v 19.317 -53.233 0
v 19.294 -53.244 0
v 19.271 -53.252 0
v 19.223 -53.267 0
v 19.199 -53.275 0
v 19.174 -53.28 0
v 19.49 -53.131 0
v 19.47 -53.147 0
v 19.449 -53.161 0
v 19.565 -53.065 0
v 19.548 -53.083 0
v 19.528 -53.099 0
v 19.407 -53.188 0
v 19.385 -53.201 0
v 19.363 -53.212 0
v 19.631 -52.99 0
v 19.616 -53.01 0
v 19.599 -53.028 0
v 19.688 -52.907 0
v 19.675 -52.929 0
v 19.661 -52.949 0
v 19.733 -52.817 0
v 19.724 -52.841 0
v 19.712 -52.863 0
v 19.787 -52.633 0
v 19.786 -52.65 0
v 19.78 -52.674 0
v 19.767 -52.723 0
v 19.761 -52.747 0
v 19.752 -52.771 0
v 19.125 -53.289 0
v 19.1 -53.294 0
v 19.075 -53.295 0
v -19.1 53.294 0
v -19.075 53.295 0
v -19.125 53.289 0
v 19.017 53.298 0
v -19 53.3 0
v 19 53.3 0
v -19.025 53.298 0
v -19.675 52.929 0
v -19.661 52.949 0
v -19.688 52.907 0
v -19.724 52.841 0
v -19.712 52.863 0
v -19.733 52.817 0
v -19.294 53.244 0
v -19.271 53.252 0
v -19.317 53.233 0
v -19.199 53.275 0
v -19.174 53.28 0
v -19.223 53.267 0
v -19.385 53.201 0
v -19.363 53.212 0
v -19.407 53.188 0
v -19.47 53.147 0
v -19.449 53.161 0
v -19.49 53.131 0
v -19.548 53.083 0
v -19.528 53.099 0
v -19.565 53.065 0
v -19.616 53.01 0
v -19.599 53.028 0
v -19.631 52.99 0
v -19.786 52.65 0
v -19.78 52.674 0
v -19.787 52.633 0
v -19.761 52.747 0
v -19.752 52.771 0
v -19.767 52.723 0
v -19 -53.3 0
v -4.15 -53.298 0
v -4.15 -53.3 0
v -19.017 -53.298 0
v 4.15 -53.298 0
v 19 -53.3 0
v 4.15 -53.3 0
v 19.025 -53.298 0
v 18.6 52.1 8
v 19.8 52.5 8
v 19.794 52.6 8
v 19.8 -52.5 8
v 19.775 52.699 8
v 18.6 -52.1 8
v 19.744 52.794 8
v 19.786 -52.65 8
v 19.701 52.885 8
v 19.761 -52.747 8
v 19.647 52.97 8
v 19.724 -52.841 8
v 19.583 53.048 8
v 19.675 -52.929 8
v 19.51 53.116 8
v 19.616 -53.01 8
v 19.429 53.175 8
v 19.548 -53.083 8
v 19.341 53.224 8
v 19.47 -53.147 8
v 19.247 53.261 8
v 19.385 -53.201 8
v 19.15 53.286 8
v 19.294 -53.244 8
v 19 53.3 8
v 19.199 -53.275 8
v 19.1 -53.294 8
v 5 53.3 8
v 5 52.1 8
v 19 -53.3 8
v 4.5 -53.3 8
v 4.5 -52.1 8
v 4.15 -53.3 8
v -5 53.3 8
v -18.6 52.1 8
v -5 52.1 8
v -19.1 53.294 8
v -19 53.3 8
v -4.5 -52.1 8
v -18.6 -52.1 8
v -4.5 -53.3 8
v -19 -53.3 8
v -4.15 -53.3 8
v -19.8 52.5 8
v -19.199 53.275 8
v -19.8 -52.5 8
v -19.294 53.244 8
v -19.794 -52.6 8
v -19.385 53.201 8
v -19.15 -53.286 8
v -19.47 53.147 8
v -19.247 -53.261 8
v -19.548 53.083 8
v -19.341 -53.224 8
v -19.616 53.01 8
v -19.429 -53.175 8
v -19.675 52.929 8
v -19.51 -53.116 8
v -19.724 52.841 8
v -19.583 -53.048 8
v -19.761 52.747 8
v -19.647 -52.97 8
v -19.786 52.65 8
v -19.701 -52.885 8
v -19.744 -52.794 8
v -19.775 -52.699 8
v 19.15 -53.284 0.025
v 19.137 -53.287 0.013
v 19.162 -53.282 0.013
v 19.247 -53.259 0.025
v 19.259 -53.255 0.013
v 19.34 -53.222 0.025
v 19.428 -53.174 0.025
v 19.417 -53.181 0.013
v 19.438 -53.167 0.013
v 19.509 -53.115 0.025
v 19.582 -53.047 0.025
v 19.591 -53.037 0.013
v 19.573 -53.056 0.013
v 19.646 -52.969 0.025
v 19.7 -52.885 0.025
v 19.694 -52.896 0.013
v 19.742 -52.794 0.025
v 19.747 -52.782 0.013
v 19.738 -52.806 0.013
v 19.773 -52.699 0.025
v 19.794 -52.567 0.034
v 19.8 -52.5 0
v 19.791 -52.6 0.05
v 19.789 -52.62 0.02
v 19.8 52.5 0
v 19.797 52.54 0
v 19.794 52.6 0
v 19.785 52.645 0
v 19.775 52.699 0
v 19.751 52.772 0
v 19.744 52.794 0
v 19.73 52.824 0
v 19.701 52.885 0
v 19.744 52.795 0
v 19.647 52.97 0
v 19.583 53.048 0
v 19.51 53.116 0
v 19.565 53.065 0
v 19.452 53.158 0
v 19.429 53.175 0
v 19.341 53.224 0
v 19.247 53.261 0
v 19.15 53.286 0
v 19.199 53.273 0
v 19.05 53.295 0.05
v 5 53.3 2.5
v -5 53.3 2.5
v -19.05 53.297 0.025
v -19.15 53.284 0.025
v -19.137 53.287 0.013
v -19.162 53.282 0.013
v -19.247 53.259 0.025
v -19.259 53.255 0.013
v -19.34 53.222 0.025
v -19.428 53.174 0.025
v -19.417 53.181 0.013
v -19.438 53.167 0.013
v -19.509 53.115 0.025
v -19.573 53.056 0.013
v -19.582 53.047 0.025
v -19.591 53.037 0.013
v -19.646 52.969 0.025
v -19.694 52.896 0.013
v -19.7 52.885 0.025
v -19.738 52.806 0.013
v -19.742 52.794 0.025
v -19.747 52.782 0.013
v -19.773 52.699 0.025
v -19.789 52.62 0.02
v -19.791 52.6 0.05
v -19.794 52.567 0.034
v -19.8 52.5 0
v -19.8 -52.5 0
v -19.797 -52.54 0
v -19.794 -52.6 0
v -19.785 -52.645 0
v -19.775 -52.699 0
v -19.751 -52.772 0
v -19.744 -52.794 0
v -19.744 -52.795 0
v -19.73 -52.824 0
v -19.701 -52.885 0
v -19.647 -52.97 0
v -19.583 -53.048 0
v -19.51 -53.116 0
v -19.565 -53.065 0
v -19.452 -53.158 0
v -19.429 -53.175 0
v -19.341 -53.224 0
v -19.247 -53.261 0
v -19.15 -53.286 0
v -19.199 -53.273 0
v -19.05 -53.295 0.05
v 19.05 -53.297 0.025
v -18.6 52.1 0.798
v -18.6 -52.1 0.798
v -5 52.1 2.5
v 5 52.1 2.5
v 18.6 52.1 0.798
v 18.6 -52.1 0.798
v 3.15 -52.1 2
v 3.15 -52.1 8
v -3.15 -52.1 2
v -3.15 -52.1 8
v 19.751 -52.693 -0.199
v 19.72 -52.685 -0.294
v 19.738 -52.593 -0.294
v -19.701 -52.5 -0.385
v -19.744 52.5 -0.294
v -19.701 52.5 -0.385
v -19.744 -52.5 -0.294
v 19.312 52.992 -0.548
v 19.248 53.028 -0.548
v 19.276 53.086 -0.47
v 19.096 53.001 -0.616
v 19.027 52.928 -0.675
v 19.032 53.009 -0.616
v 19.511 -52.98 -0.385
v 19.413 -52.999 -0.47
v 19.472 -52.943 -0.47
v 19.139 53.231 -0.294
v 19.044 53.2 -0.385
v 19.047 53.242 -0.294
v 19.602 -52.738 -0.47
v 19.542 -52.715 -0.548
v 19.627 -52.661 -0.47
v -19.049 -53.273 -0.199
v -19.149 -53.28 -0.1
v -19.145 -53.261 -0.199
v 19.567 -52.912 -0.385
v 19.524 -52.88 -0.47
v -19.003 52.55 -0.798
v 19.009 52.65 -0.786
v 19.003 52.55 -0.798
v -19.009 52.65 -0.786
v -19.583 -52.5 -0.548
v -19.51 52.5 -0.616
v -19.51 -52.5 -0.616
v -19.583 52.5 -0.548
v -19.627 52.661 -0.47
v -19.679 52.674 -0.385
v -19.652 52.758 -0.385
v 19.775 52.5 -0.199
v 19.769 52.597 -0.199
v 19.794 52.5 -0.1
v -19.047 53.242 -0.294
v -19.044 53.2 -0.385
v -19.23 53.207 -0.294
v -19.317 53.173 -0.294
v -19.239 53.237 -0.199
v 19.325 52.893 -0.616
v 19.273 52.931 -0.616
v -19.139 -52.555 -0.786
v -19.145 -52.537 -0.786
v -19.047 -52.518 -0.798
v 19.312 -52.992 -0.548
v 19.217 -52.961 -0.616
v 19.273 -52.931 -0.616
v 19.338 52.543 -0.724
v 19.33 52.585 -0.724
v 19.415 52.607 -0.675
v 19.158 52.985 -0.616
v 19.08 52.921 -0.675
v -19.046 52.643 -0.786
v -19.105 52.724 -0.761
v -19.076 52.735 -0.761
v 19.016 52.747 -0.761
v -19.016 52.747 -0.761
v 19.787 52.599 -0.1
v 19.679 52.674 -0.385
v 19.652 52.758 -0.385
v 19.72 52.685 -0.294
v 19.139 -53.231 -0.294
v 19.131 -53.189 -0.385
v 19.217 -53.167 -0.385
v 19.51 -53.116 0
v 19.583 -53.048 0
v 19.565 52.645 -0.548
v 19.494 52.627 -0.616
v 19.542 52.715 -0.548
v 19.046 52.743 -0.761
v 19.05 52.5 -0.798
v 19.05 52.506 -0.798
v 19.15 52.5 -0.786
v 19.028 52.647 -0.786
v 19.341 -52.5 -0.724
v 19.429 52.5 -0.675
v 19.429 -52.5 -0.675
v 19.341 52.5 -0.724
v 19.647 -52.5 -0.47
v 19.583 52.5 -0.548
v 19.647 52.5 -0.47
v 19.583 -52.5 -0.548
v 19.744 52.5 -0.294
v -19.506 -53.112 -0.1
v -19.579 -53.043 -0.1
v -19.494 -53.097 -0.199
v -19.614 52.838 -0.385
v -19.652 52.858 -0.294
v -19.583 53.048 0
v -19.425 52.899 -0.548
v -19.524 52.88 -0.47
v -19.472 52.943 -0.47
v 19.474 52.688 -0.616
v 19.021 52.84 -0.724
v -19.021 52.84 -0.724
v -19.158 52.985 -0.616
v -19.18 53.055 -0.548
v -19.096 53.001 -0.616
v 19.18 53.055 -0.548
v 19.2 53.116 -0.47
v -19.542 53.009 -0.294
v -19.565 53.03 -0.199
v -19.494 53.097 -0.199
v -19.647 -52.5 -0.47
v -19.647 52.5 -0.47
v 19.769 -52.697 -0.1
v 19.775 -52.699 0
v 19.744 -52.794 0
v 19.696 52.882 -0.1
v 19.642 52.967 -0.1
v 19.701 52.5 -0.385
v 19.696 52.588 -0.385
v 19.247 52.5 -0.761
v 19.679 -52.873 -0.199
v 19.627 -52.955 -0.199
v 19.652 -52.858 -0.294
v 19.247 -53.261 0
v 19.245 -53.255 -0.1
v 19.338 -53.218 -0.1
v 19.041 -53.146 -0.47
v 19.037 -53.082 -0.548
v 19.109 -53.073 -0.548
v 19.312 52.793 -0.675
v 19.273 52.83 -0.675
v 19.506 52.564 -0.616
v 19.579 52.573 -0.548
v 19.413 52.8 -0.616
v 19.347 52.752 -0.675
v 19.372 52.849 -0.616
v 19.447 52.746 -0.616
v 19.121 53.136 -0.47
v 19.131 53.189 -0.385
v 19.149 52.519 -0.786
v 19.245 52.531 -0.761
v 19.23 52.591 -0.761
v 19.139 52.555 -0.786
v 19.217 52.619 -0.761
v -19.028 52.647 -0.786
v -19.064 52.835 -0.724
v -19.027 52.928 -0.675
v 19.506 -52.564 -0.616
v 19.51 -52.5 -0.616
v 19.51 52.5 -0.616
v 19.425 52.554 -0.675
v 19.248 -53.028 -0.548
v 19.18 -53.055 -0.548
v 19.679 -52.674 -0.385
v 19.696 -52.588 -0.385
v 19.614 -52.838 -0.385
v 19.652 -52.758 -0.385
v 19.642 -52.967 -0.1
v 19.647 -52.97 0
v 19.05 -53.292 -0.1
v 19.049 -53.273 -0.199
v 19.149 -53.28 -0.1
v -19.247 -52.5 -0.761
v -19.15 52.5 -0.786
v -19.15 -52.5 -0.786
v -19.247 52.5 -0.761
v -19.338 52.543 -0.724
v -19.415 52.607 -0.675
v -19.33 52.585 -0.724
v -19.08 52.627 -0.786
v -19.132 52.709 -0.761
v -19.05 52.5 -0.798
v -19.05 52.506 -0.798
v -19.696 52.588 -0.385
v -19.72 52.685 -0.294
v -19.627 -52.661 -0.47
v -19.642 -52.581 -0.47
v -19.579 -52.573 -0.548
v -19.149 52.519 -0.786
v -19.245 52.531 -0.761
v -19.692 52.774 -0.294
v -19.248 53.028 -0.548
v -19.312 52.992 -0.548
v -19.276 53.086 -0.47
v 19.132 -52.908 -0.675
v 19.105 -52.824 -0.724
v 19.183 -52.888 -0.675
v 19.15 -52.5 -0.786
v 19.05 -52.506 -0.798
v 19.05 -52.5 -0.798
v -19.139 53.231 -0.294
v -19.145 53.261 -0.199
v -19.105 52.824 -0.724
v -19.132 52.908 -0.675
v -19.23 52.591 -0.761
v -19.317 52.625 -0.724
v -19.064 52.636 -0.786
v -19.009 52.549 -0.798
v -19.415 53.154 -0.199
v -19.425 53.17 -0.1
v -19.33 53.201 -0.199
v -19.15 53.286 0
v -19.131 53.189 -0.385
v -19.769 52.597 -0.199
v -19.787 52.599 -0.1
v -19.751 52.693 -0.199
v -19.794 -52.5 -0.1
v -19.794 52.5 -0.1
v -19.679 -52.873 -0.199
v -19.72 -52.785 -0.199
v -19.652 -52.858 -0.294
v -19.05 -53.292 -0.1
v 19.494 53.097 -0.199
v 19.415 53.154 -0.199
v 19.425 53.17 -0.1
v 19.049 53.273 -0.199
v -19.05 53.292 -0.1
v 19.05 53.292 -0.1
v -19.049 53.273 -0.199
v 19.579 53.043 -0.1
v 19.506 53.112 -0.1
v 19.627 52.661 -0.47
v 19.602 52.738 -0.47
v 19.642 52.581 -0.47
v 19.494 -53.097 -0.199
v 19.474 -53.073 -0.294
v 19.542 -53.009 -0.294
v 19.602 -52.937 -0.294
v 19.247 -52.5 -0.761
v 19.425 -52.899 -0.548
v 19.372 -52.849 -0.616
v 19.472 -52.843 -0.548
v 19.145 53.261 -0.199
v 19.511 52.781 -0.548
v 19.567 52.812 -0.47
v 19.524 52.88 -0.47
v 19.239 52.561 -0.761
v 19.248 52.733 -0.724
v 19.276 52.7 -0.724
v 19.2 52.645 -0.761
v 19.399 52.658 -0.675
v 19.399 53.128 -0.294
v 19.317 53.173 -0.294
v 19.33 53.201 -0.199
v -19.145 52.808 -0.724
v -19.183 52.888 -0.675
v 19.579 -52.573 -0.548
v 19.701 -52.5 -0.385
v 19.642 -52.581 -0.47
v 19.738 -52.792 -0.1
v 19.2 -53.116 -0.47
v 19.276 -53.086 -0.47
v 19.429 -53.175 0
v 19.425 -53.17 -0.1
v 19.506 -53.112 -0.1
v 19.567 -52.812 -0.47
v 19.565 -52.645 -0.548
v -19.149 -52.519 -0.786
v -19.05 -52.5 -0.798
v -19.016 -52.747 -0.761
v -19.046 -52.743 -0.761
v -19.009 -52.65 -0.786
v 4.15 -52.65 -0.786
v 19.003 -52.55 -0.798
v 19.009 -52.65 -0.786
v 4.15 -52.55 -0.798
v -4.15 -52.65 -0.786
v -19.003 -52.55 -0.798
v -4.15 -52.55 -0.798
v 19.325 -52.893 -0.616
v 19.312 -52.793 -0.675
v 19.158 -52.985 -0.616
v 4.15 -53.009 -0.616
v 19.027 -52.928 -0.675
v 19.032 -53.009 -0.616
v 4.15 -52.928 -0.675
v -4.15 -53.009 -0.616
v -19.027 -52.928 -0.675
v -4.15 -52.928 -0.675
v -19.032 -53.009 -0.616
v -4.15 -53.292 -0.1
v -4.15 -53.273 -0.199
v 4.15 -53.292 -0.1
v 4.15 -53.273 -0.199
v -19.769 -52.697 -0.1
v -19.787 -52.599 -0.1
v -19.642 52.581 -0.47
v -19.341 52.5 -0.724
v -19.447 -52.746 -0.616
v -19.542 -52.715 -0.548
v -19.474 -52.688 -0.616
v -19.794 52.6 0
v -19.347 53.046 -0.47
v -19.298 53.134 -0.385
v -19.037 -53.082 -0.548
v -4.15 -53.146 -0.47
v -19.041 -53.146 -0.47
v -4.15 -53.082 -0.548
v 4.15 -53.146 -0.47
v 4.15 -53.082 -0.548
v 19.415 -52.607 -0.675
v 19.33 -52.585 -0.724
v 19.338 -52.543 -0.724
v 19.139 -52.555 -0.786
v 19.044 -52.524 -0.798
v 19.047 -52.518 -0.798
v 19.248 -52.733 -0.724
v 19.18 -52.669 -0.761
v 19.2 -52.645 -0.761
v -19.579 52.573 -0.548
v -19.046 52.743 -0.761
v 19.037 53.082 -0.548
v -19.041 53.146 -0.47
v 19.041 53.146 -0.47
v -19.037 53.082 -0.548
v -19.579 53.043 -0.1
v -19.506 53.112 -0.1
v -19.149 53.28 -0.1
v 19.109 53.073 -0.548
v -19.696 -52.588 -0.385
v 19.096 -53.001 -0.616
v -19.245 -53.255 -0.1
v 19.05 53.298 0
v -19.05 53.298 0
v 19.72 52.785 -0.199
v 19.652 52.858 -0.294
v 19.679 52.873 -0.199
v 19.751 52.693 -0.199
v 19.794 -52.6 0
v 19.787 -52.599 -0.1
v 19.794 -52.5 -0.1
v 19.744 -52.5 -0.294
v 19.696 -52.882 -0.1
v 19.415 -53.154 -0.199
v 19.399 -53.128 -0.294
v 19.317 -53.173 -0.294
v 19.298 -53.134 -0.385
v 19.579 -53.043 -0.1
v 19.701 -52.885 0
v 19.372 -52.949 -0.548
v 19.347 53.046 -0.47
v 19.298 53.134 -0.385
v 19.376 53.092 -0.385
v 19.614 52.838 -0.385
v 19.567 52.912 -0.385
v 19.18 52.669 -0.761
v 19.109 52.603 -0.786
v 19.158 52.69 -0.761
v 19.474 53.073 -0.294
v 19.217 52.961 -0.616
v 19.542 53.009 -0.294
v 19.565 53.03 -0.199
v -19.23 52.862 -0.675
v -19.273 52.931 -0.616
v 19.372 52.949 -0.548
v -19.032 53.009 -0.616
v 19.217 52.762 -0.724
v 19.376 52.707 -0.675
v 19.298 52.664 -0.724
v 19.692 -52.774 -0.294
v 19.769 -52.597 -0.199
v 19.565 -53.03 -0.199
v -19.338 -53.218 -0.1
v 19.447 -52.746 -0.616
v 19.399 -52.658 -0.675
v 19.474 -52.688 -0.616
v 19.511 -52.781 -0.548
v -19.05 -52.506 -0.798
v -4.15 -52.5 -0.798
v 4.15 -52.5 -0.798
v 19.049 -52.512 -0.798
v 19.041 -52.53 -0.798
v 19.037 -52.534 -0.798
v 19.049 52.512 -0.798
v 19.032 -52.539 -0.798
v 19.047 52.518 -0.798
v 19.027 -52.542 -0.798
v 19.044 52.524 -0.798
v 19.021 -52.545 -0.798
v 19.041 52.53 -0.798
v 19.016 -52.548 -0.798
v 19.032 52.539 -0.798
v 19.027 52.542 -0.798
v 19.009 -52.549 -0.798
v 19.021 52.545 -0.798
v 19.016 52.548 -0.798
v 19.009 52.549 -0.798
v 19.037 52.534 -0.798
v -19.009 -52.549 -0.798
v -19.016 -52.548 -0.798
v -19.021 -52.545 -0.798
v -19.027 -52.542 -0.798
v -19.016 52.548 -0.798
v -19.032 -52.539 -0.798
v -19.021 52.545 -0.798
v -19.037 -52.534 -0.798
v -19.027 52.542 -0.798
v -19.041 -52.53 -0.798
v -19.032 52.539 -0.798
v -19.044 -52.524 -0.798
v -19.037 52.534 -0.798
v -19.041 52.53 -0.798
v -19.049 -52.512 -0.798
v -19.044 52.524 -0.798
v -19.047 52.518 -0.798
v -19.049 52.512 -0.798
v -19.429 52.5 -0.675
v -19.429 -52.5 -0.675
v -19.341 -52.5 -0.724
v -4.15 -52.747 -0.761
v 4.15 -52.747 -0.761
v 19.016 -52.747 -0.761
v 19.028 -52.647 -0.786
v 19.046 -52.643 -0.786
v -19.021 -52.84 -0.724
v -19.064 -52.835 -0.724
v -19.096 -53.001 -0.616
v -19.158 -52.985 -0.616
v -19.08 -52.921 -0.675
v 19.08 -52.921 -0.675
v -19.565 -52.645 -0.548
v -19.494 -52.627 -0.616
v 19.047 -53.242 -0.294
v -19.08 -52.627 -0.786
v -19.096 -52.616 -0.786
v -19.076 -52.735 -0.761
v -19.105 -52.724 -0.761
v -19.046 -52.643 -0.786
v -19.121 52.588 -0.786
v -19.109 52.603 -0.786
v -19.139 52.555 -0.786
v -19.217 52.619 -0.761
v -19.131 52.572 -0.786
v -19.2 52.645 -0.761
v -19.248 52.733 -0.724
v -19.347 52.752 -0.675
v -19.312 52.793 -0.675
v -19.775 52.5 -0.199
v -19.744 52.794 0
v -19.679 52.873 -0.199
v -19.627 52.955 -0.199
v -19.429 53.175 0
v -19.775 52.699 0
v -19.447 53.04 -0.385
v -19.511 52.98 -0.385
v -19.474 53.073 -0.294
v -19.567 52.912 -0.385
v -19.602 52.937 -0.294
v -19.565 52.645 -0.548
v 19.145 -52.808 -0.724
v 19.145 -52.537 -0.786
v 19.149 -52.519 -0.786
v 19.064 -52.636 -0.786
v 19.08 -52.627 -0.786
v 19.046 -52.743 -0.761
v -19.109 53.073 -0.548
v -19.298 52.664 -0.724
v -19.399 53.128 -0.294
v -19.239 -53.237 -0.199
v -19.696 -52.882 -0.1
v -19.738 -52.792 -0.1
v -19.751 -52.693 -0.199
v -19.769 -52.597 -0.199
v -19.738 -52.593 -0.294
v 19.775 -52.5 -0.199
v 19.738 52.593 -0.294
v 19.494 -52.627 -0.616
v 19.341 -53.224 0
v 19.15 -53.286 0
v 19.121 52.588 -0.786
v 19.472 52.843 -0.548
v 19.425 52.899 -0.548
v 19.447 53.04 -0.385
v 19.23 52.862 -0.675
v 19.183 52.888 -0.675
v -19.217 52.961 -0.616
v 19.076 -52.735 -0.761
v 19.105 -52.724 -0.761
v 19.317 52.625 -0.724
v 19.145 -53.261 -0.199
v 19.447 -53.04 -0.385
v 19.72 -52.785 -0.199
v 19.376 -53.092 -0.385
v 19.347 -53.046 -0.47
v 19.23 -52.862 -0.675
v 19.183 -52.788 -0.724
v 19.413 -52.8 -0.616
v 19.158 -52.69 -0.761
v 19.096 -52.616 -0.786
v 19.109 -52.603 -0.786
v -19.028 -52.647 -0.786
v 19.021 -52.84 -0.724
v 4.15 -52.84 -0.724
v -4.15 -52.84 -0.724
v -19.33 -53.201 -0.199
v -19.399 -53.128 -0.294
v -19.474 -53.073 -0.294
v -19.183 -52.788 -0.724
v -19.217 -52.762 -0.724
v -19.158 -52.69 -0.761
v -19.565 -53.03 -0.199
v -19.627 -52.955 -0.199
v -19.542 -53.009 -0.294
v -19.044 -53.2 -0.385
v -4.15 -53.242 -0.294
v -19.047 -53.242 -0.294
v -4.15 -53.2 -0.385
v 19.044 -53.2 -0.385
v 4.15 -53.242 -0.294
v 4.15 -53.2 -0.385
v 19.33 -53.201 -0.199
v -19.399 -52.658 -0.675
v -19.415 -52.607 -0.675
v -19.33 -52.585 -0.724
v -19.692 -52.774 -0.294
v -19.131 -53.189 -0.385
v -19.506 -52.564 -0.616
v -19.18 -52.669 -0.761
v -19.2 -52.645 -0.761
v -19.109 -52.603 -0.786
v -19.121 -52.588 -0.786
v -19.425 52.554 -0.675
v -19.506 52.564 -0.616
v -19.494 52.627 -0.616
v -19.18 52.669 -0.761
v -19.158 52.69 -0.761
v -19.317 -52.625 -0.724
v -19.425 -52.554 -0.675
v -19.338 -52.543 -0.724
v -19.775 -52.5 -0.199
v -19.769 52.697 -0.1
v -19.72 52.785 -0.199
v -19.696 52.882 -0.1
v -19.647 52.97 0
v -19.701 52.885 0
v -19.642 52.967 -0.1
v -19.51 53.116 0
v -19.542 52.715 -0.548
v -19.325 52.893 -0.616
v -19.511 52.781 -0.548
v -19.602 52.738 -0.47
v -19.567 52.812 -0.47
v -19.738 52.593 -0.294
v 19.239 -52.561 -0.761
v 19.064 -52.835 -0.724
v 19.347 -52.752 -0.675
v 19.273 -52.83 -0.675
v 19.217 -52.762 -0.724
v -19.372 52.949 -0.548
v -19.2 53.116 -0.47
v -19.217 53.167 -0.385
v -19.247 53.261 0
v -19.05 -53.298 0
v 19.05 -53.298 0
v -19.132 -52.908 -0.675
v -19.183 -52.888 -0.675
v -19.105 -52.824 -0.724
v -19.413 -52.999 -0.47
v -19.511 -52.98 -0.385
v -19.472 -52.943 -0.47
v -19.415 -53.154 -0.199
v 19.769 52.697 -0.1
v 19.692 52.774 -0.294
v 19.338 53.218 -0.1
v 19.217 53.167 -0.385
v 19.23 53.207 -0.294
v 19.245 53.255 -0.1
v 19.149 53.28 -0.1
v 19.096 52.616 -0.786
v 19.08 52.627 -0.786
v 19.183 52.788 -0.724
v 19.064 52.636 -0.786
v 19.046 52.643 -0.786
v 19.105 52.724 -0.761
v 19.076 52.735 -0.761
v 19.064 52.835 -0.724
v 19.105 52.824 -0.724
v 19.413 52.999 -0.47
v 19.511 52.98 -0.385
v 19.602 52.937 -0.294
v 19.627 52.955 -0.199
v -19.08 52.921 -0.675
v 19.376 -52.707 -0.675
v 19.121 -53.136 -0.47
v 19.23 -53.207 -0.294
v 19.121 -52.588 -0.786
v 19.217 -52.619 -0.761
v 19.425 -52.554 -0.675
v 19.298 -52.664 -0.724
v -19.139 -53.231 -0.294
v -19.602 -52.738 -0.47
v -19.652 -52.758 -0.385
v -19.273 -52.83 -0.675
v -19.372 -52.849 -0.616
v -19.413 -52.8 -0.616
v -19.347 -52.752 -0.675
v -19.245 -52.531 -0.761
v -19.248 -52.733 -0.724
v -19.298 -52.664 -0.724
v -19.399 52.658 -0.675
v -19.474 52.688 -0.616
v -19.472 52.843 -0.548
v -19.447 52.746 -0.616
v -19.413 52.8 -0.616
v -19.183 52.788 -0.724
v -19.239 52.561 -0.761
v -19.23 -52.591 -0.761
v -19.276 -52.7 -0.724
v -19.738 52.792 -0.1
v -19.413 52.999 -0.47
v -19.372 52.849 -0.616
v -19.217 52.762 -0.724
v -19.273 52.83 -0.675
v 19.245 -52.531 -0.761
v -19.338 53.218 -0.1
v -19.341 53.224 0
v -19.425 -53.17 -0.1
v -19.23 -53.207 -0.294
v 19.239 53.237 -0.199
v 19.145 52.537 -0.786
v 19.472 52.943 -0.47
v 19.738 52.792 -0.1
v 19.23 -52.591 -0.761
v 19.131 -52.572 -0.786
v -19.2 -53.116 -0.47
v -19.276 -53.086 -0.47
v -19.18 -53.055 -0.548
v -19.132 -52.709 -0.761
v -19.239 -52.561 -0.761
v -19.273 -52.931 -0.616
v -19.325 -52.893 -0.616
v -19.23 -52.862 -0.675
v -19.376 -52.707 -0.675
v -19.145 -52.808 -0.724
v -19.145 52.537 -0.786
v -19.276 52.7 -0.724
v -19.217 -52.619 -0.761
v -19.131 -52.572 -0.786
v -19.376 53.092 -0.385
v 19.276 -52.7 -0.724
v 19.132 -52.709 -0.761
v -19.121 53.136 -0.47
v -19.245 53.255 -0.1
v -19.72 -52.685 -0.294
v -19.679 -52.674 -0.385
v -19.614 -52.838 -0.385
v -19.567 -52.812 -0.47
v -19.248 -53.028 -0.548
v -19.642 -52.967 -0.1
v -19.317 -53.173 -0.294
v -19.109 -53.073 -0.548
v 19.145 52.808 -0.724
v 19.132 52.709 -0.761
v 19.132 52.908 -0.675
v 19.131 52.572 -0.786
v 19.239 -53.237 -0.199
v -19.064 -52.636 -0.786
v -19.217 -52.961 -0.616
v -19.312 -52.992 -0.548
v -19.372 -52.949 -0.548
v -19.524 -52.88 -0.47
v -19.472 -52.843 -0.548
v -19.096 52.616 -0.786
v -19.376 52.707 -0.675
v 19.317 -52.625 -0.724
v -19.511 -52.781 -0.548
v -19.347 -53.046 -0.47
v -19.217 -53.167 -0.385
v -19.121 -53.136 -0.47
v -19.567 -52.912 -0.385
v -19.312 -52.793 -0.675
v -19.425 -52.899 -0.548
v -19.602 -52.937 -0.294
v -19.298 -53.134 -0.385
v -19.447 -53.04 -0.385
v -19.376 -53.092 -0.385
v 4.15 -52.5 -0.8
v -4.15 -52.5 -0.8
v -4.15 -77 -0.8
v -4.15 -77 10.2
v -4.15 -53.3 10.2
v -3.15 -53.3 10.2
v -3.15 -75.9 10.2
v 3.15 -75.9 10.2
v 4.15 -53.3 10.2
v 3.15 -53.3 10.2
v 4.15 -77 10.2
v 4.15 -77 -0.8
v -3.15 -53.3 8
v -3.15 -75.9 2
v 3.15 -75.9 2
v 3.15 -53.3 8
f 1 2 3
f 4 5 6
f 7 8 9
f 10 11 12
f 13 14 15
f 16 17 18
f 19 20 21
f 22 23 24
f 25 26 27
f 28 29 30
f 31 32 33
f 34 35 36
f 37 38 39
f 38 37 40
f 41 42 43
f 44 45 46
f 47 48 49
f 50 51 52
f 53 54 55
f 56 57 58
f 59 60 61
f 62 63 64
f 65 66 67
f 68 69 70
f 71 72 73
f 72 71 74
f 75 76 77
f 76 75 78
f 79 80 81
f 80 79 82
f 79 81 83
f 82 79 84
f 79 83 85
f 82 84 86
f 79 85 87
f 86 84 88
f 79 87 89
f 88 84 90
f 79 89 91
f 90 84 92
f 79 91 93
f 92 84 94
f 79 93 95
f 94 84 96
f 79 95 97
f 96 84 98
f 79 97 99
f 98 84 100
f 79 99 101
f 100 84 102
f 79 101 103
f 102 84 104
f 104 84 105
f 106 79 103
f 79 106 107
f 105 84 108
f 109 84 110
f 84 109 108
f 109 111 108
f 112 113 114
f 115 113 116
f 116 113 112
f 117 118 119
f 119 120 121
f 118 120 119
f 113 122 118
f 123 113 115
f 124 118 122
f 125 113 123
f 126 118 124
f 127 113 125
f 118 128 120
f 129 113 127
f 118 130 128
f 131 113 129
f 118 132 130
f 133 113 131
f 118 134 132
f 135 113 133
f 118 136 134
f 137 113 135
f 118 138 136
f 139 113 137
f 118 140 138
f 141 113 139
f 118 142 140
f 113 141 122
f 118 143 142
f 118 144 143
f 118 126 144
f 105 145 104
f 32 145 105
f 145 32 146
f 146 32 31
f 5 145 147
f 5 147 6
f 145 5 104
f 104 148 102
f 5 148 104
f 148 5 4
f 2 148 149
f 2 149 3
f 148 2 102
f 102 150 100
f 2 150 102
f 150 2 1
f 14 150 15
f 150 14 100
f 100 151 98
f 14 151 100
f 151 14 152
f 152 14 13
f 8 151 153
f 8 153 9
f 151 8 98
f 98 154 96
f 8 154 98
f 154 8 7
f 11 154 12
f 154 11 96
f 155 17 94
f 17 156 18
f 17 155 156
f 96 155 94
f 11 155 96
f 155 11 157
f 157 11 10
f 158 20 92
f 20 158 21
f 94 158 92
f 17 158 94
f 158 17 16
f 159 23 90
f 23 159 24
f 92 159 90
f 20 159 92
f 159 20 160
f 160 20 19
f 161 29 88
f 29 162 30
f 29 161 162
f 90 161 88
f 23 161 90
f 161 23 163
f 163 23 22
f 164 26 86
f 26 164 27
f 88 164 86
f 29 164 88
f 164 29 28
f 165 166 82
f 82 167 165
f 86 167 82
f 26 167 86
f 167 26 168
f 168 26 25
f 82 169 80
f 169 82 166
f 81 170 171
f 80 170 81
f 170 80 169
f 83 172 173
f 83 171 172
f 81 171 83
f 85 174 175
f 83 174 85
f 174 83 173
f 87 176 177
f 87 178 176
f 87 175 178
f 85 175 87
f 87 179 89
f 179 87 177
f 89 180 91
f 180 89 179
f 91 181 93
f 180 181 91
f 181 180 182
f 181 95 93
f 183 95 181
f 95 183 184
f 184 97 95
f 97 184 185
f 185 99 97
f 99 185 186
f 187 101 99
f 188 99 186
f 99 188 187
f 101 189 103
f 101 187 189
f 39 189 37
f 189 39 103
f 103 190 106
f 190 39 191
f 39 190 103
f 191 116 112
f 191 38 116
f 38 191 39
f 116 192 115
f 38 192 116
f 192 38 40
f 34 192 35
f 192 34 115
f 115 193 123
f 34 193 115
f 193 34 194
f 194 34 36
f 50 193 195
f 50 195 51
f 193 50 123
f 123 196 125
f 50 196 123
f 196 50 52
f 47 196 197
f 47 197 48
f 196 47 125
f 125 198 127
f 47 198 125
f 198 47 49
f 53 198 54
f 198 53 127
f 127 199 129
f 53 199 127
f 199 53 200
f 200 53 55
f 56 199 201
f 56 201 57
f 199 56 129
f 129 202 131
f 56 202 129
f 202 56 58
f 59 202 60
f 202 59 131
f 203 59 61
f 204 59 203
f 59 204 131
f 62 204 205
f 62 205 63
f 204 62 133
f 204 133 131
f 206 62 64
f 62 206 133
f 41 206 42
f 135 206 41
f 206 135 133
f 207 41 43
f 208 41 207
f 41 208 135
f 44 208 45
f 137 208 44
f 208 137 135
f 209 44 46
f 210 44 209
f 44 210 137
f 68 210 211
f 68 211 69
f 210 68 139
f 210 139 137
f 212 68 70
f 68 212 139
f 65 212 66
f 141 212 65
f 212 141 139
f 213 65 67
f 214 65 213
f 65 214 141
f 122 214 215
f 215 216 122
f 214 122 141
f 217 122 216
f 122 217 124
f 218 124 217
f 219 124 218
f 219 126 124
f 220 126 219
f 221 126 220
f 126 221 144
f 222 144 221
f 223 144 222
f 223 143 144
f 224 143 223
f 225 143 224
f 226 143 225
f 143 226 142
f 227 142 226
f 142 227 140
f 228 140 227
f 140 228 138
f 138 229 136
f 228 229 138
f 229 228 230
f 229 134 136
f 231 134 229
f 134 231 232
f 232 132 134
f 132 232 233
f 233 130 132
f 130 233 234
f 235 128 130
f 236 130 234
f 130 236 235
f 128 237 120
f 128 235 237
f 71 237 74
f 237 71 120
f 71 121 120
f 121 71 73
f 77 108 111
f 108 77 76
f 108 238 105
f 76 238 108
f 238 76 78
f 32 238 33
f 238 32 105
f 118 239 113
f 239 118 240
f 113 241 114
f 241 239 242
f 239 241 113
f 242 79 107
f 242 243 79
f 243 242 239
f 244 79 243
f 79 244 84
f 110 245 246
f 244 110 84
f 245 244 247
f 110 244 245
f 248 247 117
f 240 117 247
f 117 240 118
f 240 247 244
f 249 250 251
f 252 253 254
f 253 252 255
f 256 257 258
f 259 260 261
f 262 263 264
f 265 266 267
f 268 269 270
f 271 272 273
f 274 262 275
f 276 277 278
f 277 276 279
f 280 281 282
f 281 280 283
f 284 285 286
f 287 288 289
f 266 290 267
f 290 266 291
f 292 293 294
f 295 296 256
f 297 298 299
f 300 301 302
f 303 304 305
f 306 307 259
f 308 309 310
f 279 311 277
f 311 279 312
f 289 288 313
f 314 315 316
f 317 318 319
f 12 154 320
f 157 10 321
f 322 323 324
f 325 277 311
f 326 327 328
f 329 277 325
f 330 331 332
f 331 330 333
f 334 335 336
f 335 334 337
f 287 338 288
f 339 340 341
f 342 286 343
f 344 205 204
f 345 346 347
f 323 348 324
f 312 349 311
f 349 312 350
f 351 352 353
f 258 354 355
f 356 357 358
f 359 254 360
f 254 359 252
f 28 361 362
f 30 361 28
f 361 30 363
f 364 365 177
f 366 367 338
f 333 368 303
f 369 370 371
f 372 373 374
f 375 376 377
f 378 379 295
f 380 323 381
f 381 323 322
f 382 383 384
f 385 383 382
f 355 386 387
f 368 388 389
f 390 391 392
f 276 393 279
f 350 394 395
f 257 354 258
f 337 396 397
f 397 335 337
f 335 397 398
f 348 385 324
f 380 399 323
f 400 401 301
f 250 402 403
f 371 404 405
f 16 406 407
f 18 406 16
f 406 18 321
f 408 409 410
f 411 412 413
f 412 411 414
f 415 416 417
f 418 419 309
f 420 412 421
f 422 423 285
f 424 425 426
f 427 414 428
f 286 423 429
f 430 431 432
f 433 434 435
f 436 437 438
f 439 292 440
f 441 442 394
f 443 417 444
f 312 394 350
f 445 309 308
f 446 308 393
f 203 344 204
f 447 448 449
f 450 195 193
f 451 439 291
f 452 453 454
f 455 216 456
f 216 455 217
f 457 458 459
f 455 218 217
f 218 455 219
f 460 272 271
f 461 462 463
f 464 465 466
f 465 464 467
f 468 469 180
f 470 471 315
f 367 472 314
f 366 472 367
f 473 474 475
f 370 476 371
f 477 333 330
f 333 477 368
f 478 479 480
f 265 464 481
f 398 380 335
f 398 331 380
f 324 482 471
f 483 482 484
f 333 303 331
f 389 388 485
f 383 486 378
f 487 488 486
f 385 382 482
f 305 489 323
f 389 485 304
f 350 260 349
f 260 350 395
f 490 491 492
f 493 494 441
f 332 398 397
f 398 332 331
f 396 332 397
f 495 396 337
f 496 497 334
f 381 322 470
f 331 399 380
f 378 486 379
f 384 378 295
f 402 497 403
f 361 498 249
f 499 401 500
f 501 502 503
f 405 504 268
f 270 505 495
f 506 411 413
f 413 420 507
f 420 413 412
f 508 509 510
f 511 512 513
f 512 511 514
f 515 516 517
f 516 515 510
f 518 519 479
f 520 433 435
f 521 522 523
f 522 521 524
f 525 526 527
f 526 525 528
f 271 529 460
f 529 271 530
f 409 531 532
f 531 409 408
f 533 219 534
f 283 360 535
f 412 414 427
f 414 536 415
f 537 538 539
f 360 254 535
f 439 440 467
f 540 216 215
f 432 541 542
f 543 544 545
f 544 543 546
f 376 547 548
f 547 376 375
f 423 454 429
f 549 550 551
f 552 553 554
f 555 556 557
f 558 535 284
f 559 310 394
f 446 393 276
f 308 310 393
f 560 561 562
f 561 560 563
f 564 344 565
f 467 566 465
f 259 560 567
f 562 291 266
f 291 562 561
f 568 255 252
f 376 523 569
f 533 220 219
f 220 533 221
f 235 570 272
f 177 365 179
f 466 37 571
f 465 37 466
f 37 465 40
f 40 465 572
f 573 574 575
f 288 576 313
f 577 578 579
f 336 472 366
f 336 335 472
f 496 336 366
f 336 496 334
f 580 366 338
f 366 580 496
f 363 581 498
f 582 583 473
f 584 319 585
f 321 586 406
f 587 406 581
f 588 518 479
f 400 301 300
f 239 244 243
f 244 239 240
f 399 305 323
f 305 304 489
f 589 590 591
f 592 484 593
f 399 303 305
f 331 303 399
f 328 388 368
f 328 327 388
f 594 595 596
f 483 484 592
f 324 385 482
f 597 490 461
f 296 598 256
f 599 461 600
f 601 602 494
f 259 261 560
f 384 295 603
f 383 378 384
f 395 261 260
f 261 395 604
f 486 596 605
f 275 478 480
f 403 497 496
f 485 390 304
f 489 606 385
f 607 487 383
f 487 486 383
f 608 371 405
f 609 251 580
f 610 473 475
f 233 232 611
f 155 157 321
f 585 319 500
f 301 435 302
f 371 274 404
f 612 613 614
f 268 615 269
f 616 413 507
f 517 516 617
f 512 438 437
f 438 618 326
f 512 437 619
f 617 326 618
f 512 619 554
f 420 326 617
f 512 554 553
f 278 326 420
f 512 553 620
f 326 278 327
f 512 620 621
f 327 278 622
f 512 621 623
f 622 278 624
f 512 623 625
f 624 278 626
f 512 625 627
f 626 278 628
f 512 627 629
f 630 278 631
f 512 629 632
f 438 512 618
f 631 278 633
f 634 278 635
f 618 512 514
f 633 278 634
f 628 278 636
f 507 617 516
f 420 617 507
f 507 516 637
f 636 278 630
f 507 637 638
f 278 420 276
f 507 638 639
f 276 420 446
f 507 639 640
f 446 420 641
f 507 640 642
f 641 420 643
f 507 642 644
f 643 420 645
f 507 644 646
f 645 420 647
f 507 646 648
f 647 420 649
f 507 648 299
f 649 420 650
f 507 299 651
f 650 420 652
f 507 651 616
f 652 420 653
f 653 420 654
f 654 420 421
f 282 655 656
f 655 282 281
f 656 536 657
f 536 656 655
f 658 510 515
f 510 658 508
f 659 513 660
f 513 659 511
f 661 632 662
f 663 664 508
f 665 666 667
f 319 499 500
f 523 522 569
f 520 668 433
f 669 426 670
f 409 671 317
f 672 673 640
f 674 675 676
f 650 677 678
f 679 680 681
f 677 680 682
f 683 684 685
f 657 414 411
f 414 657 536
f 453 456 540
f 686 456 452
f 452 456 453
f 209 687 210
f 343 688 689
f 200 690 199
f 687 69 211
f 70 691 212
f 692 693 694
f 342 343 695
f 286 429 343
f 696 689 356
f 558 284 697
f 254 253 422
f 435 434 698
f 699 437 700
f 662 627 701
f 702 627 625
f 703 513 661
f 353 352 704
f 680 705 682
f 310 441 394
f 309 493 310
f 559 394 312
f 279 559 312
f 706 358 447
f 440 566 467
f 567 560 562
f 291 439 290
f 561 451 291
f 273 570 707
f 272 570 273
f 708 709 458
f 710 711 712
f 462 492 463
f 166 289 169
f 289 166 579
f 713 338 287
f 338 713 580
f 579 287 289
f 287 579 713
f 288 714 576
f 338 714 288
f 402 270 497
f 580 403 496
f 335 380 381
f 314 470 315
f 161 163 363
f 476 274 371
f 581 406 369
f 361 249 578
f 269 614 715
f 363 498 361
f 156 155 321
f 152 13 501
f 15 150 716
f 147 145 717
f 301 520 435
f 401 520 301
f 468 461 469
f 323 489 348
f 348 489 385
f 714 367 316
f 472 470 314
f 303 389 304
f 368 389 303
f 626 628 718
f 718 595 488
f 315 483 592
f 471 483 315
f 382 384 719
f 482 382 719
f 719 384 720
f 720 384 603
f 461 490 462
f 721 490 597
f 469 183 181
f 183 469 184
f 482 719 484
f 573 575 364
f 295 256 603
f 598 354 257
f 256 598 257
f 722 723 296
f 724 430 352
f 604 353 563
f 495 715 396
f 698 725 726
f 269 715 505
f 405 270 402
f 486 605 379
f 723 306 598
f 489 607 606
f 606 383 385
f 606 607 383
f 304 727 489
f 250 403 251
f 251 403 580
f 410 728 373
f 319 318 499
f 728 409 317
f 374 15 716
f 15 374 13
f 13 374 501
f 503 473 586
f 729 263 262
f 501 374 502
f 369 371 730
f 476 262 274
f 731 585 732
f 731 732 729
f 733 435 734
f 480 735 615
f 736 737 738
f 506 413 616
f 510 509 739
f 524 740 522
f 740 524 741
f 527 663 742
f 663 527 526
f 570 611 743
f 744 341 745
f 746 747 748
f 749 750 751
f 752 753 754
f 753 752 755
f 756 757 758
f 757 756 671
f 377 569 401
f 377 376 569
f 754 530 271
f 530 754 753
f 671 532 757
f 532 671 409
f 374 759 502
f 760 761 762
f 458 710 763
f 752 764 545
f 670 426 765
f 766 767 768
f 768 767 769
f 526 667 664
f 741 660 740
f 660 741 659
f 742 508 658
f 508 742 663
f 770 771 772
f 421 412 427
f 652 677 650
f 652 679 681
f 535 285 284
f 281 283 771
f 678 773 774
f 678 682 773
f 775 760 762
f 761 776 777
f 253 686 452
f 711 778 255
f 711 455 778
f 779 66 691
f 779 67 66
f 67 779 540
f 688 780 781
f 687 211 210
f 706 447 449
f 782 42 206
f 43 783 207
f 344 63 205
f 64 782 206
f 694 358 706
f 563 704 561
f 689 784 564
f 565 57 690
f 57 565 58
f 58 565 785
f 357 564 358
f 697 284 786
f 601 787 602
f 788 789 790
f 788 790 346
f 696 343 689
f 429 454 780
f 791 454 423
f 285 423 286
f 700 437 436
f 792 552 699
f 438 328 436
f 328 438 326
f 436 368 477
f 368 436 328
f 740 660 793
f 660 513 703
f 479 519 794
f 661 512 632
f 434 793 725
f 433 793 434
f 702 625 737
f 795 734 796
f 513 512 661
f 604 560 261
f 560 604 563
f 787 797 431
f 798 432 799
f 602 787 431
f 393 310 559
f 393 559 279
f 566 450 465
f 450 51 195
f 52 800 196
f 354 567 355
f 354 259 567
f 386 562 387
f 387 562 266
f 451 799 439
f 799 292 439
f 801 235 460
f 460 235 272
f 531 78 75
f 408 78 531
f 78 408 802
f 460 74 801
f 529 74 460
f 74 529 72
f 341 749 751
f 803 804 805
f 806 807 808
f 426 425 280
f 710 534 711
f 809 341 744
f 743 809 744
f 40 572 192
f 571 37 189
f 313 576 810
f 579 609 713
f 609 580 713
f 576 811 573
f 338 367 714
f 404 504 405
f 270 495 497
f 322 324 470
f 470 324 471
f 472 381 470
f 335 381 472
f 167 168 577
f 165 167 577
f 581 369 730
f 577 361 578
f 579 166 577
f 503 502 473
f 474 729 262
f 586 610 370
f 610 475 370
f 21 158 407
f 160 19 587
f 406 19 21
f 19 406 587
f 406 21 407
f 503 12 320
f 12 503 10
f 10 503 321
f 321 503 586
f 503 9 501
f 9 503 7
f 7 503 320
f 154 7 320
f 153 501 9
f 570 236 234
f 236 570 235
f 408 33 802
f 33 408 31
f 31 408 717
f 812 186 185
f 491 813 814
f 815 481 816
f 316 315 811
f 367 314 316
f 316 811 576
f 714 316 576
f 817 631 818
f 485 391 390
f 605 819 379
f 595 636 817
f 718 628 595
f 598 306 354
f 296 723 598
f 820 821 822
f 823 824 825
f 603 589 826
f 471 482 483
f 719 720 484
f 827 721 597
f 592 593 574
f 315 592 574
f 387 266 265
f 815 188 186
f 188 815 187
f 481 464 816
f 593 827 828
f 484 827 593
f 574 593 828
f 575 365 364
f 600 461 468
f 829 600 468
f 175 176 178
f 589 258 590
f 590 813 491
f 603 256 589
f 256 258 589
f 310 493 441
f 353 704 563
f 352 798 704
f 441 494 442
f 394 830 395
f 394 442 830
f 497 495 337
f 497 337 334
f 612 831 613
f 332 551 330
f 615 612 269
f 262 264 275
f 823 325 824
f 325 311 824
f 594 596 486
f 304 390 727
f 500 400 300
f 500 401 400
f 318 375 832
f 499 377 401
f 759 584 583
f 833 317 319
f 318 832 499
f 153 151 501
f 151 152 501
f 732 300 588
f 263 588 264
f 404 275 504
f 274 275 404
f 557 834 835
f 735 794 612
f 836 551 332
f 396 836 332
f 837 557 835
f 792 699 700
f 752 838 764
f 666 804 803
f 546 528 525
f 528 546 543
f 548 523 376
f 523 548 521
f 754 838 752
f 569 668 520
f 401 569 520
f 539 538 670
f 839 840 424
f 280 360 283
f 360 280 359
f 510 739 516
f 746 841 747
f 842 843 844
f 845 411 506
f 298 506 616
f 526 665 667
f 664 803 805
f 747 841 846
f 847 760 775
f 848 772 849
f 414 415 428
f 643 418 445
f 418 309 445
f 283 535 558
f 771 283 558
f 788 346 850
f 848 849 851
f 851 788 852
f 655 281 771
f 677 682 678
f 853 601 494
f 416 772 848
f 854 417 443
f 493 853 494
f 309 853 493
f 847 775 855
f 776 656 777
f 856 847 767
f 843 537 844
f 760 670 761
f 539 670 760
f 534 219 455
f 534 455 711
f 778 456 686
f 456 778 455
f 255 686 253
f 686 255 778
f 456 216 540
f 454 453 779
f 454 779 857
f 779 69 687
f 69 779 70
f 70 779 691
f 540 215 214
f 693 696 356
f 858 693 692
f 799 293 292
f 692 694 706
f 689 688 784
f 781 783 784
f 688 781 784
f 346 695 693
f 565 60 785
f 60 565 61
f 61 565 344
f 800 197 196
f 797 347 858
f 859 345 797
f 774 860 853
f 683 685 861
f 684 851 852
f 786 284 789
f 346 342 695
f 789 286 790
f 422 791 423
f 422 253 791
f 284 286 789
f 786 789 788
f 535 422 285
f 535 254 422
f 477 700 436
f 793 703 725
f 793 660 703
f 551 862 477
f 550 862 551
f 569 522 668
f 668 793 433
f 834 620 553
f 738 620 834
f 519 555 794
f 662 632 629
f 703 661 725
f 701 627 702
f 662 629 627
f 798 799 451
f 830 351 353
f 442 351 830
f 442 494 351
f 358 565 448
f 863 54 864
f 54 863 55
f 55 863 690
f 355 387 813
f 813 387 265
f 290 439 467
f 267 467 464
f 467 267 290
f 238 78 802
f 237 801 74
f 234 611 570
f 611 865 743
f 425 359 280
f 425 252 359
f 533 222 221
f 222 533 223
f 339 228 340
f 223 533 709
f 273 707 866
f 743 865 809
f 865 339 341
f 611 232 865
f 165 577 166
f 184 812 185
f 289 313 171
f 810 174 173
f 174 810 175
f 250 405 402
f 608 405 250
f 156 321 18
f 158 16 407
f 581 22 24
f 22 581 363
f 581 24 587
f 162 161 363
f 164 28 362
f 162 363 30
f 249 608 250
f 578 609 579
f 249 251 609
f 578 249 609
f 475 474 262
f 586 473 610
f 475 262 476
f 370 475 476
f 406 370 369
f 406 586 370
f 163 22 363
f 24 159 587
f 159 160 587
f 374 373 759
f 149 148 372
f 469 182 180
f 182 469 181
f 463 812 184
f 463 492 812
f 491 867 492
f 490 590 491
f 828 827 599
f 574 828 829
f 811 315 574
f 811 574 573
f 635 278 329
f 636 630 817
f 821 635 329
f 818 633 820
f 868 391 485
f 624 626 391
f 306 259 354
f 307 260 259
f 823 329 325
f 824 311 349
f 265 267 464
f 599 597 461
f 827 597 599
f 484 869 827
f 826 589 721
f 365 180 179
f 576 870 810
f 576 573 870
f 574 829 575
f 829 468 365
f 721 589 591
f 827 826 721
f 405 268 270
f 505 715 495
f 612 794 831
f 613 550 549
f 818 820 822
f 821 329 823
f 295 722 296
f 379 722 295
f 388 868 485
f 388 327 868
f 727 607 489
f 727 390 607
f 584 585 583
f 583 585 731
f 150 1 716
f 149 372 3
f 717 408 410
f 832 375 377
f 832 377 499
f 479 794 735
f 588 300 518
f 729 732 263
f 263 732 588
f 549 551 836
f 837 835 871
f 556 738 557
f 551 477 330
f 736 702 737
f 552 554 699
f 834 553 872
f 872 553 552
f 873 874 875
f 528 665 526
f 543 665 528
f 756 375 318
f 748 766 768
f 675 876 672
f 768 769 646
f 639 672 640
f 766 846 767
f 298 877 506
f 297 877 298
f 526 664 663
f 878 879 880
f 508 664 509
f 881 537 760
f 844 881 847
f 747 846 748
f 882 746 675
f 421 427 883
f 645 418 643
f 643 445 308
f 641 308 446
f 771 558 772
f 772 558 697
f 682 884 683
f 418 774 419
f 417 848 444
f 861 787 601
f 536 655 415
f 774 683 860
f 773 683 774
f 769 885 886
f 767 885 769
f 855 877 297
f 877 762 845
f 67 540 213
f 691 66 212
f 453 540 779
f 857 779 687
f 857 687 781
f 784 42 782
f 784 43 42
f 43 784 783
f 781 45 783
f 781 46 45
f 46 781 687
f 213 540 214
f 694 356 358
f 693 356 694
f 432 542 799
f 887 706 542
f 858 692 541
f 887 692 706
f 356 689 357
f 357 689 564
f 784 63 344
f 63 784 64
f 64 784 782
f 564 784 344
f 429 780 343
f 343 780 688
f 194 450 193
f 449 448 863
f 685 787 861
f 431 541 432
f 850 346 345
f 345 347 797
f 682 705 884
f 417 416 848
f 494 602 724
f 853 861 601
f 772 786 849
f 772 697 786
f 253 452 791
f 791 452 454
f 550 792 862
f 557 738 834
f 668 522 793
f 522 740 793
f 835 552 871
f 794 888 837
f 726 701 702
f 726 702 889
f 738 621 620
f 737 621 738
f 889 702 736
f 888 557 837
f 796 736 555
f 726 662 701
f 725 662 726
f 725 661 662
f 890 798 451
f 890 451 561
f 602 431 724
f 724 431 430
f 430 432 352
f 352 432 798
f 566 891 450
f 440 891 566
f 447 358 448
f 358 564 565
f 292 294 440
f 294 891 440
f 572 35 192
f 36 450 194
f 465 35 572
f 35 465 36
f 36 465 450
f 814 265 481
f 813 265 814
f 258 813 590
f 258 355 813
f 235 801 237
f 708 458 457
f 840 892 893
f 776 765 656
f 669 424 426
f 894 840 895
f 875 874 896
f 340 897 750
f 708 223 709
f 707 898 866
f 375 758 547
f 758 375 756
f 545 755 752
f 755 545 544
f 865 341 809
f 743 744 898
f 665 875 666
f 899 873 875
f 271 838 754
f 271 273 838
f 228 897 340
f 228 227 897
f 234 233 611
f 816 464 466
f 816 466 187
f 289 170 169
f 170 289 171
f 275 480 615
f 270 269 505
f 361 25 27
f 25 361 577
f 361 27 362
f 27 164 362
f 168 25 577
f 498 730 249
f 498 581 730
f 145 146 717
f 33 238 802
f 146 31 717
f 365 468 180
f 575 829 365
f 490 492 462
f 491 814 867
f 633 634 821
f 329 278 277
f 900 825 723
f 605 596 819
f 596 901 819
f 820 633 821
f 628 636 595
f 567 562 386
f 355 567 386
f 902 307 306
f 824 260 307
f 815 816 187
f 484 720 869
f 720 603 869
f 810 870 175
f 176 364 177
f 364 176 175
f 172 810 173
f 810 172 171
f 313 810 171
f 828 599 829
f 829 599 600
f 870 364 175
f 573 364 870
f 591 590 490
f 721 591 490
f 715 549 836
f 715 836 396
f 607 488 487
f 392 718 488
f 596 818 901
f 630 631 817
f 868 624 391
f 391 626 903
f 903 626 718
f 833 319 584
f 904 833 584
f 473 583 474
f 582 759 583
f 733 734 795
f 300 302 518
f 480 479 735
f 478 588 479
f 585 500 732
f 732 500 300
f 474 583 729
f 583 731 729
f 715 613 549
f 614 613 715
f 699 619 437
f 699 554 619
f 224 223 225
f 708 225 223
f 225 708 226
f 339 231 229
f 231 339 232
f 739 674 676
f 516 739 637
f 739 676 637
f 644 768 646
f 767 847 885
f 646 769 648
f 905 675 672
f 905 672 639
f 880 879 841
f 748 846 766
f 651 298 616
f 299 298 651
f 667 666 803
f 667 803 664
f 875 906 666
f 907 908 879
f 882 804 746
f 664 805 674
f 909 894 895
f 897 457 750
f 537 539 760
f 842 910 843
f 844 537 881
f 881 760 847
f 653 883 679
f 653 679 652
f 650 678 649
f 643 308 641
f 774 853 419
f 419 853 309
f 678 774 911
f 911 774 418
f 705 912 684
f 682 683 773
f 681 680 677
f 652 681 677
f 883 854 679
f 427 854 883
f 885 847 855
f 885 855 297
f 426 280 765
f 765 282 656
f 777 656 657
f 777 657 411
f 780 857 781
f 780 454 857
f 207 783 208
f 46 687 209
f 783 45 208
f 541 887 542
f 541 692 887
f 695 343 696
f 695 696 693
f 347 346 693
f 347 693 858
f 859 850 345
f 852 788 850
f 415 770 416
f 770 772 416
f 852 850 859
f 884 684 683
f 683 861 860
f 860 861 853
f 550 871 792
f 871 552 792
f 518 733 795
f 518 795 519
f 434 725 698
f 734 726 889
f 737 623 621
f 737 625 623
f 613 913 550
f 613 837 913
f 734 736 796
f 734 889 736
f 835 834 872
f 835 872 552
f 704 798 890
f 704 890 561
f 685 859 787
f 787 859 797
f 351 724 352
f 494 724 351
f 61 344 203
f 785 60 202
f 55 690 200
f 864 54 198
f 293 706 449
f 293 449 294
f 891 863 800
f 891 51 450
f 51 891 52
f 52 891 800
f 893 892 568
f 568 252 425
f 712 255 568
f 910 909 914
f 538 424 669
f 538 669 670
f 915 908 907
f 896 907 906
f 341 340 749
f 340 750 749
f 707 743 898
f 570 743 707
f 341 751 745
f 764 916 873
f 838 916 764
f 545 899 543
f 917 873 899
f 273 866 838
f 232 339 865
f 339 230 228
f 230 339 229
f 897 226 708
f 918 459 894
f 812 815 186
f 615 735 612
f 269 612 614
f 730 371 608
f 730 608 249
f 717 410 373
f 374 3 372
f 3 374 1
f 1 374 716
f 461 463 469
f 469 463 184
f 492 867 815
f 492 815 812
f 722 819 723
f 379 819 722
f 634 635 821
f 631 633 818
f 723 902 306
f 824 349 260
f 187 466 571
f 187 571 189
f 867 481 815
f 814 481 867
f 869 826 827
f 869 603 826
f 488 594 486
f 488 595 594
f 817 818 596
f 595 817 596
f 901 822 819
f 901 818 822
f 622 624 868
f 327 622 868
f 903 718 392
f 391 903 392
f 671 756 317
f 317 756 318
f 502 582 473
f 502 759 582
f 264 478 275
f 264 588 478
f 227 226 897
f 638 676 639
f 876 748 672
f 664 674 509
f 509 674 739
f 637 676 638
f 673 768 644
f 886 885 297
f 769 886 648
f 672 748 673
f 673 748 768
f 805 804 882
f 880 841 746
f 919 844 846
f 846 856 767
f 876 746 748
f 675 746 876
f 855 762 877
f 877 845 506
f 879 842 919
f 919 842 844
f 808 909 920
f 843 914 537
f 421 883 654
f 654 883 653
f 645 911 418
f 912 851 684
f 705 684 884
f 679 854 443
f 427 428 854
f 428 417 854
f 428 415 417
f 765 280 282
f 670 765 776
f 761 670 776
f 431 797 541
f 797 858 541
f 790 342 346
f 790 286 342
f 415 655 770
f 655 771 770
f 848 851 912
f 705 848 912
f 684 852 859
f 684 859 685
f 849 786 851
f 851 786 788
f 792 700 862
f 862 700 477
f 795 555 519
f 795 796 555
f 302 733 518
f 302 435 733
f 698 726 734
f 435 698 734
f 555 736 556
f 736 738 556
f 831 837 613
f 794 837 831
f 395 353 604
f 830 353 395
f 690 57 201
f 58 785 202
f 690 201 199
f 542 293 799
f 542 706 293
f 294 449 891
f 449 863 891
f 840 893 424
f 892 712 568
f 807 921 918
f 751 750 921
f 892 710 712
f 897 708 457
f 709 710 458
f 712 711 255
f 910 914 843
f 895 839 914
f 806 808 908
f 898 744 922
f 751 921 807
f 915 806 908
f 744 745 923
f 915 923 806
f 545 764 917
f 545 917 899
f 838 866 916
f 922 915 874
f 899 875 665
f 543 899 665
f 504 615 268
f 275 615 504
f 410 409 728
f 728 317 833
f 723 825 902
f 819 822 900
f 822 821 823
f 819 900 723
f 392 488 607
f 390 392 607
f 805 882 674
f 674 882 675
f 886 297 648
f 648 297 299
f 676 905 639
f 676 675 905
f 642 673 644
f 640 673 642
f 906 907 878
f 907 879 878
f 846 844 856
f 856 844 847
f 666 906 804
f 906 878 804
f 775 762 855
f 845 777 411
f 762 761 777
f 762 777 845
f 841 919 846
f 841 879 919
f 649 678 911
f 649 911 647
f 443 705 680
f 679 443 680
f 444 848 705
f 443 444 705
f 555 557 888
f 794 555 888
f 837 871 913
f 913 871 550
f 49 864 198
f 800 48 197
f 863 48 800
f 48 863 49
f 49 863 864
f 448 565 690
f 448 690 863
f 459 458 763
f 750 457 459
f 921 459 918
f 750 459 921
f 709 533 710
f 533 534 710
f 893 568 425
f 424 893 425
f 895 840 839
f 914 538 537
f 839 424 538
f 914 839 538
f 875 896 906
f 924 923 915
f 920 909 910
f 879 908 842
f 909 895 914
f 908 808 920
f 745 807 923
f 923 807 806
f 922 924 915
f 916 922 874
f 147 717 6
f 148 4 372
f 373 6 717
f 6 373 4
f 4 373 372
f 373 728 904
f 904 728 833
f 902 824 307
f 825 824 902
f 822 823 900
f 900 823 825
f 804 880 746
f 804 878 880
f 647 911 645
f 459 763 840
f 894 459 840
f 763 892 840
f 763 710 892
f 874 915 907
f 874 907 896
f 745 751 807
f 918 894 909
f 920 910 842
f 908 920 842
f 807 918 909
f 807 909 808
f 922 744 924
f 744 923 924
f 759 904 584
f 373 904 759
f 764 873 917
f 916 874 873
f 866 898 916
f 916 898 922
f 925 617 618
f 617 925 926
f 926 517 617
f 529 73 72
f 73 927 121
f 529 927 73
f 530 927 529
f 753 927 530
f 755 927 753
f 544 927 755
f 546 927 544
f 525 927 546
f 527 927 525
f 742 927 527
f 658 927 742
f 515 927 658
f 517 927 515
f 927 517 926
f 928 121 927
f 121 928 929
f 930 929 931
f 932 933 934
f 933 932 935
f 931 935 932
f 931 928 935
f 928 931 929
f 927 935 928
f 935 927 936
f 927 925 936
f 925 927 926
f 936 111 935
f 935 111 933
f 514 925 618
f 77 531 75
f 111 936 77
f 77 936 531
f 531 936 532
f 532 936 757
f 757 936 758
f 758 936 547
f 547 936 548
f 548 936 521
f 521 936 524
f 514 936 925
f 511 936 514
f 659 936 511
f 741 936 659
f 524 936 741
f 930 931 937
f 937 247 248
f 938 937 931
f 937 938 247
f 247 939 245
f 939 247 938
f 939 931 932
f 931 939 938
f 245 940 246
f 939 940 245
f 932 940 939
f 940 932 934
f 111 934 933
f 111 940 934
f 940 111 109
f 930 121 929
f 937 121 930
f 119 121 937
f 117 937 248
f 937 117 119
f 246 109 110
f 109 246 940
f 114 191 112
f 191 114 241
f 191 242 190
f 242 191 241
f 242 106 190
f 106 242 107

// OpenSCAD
$fn=50;
BOX_W = 38; // Box Width
BOX_L = 105;// Box Length
BOX_H = 8.0; // Box Height
CORNER_RADIUS = 0.8; // Radius of corners
WALL = 0.8;// Wall Thickness all sides

MIC_OUTSIDE_WIDTH=8.3;
MIC_OUTSIDE_HEIGHT=11.0;
MIC_INSIDE_WIDTH=6.3;
MIC_LENGTH=24.5;

MIC_OFFSET_X = 0;
MIC_OFFSET_Y = -34.5;
MIC_OFFSET_Z = -0.3;

VENT_OFFSET = -4.5;
VENT_L = 19.0;
VENT_R = -19.0;

module sq_vent(x, y, vent_offset) {
    translate([x, y, BOX_H + vent_offset]) {
        rotate([90, 0, 90]) {
            linear_extrude(2.5) square([2, 2], center=true);
        }
    }
}

module vent(x, y, vent_offset) {
    translate([x, y, BOX_H + vent_offset]) {
        rotate([90, 0, 90]) {
            cylinder(h=3.0, d=2.0, center=true);
        }
    }
}

difference() {
    union() {
        linear_extrude( BOX_H )
        difference(){
            offset(r=CORNER_RADIUS) square( [BOX_W, BOX_L], center=true );
            offset(r= CORNER_RADIUS - WALL) square([BOX_W-WALL, BOX_L-WALL], center=true );
        };
        coordinates = [ [0,0],[0,BOX_L],[BOX_W,BOX_L],[BOX_W,0] ];
        translate ( [-BOX_W/2, -BOX_L/2] )
            hull()
            for (i = coordinates)
            translate(i) sphere(CORNER_RADIUS);
            
        translate([MIC_OFFSET_X, MIC_OFFSET_Y, MIC_OFFSET_Z]){
            // mic box
            translate([0,-18.0,BOX_H-3])
            rotate([90,0,0])
            linear_extrude(MIC_LENGTH)square([MIC_OUTSIDE_WIDTH,MIC_OUTSIDE_HEIGHT], center=true);
        }
    }
    
    translate([MIC_OFFSET_X, MIC_OFFSET_Y, MIC_OFFSET_Z]){
        // inside mic channel
        translate([0,-13.8,BOX_H-0.2]) // inside
        rotate([90,0,0])
        linear_extrude(MIC_LENGTH+3.1) square([MIC_INSIDE_WIDTH,MIC_OUTSIDE_HEIGHT], center=true); 
        
        // mic lid clearance at mic box opening
        translate([0, -16.8, BOX_H+1.40])
        rotate([90,0,0])
        linear_extrude(2.0) square([9,2.2], center=true);   
    }
    // cable exit
    translate([0,54.0,BOX_H-2.5])
    rotate([90,0,0])
    #linear_extrude(3.0) square([10,6], center=true);
    /*
    // gas sensor vents
    vent(VENT_L, 29.0, VENT_OFFSET);
    vent(VENT_L, 21.0, VENT_OFFSET);
    vent(VENT_L, 13.0, VENT_OFFSET);
    vent(VENT_L, 5.0, VENT_OFFSET);
    vent(VENT_L, -3.0, VENT_OFFSET);
    vent(VENT_L, -11.0, VENT_OFFSET);
    
    vent(VENT_R, 29.0, VENT_OFFSET);
    vent(VENT_R, 21.0, VENT_OFFSET);
    vent(VENT_R, 13.0, VENT_OFFSET);
    vent(VENT_R, 5.0, VENT_OFFSET);
    vent(VENT_R, -3.0, VENT_OFFSET);
    vent(VENT_R, -11.0, VENT_OFFSET);
    */
}

/*
// save for archiving

module waterdrop() {
    difference(){
        // Main drop shape
        # cylinder(r1=0, r2=0.1875, h=0.375, center=false);
        
        // To subtract from the base to make it rounded like a waterdrop
        translate([0, 0, -0.05])
        sphere(r=0.1875);
    }
}

for(i=[0:2]){
    translate([i*0.5, 0, 0]){
        waterdrop();
    }
}
*/
